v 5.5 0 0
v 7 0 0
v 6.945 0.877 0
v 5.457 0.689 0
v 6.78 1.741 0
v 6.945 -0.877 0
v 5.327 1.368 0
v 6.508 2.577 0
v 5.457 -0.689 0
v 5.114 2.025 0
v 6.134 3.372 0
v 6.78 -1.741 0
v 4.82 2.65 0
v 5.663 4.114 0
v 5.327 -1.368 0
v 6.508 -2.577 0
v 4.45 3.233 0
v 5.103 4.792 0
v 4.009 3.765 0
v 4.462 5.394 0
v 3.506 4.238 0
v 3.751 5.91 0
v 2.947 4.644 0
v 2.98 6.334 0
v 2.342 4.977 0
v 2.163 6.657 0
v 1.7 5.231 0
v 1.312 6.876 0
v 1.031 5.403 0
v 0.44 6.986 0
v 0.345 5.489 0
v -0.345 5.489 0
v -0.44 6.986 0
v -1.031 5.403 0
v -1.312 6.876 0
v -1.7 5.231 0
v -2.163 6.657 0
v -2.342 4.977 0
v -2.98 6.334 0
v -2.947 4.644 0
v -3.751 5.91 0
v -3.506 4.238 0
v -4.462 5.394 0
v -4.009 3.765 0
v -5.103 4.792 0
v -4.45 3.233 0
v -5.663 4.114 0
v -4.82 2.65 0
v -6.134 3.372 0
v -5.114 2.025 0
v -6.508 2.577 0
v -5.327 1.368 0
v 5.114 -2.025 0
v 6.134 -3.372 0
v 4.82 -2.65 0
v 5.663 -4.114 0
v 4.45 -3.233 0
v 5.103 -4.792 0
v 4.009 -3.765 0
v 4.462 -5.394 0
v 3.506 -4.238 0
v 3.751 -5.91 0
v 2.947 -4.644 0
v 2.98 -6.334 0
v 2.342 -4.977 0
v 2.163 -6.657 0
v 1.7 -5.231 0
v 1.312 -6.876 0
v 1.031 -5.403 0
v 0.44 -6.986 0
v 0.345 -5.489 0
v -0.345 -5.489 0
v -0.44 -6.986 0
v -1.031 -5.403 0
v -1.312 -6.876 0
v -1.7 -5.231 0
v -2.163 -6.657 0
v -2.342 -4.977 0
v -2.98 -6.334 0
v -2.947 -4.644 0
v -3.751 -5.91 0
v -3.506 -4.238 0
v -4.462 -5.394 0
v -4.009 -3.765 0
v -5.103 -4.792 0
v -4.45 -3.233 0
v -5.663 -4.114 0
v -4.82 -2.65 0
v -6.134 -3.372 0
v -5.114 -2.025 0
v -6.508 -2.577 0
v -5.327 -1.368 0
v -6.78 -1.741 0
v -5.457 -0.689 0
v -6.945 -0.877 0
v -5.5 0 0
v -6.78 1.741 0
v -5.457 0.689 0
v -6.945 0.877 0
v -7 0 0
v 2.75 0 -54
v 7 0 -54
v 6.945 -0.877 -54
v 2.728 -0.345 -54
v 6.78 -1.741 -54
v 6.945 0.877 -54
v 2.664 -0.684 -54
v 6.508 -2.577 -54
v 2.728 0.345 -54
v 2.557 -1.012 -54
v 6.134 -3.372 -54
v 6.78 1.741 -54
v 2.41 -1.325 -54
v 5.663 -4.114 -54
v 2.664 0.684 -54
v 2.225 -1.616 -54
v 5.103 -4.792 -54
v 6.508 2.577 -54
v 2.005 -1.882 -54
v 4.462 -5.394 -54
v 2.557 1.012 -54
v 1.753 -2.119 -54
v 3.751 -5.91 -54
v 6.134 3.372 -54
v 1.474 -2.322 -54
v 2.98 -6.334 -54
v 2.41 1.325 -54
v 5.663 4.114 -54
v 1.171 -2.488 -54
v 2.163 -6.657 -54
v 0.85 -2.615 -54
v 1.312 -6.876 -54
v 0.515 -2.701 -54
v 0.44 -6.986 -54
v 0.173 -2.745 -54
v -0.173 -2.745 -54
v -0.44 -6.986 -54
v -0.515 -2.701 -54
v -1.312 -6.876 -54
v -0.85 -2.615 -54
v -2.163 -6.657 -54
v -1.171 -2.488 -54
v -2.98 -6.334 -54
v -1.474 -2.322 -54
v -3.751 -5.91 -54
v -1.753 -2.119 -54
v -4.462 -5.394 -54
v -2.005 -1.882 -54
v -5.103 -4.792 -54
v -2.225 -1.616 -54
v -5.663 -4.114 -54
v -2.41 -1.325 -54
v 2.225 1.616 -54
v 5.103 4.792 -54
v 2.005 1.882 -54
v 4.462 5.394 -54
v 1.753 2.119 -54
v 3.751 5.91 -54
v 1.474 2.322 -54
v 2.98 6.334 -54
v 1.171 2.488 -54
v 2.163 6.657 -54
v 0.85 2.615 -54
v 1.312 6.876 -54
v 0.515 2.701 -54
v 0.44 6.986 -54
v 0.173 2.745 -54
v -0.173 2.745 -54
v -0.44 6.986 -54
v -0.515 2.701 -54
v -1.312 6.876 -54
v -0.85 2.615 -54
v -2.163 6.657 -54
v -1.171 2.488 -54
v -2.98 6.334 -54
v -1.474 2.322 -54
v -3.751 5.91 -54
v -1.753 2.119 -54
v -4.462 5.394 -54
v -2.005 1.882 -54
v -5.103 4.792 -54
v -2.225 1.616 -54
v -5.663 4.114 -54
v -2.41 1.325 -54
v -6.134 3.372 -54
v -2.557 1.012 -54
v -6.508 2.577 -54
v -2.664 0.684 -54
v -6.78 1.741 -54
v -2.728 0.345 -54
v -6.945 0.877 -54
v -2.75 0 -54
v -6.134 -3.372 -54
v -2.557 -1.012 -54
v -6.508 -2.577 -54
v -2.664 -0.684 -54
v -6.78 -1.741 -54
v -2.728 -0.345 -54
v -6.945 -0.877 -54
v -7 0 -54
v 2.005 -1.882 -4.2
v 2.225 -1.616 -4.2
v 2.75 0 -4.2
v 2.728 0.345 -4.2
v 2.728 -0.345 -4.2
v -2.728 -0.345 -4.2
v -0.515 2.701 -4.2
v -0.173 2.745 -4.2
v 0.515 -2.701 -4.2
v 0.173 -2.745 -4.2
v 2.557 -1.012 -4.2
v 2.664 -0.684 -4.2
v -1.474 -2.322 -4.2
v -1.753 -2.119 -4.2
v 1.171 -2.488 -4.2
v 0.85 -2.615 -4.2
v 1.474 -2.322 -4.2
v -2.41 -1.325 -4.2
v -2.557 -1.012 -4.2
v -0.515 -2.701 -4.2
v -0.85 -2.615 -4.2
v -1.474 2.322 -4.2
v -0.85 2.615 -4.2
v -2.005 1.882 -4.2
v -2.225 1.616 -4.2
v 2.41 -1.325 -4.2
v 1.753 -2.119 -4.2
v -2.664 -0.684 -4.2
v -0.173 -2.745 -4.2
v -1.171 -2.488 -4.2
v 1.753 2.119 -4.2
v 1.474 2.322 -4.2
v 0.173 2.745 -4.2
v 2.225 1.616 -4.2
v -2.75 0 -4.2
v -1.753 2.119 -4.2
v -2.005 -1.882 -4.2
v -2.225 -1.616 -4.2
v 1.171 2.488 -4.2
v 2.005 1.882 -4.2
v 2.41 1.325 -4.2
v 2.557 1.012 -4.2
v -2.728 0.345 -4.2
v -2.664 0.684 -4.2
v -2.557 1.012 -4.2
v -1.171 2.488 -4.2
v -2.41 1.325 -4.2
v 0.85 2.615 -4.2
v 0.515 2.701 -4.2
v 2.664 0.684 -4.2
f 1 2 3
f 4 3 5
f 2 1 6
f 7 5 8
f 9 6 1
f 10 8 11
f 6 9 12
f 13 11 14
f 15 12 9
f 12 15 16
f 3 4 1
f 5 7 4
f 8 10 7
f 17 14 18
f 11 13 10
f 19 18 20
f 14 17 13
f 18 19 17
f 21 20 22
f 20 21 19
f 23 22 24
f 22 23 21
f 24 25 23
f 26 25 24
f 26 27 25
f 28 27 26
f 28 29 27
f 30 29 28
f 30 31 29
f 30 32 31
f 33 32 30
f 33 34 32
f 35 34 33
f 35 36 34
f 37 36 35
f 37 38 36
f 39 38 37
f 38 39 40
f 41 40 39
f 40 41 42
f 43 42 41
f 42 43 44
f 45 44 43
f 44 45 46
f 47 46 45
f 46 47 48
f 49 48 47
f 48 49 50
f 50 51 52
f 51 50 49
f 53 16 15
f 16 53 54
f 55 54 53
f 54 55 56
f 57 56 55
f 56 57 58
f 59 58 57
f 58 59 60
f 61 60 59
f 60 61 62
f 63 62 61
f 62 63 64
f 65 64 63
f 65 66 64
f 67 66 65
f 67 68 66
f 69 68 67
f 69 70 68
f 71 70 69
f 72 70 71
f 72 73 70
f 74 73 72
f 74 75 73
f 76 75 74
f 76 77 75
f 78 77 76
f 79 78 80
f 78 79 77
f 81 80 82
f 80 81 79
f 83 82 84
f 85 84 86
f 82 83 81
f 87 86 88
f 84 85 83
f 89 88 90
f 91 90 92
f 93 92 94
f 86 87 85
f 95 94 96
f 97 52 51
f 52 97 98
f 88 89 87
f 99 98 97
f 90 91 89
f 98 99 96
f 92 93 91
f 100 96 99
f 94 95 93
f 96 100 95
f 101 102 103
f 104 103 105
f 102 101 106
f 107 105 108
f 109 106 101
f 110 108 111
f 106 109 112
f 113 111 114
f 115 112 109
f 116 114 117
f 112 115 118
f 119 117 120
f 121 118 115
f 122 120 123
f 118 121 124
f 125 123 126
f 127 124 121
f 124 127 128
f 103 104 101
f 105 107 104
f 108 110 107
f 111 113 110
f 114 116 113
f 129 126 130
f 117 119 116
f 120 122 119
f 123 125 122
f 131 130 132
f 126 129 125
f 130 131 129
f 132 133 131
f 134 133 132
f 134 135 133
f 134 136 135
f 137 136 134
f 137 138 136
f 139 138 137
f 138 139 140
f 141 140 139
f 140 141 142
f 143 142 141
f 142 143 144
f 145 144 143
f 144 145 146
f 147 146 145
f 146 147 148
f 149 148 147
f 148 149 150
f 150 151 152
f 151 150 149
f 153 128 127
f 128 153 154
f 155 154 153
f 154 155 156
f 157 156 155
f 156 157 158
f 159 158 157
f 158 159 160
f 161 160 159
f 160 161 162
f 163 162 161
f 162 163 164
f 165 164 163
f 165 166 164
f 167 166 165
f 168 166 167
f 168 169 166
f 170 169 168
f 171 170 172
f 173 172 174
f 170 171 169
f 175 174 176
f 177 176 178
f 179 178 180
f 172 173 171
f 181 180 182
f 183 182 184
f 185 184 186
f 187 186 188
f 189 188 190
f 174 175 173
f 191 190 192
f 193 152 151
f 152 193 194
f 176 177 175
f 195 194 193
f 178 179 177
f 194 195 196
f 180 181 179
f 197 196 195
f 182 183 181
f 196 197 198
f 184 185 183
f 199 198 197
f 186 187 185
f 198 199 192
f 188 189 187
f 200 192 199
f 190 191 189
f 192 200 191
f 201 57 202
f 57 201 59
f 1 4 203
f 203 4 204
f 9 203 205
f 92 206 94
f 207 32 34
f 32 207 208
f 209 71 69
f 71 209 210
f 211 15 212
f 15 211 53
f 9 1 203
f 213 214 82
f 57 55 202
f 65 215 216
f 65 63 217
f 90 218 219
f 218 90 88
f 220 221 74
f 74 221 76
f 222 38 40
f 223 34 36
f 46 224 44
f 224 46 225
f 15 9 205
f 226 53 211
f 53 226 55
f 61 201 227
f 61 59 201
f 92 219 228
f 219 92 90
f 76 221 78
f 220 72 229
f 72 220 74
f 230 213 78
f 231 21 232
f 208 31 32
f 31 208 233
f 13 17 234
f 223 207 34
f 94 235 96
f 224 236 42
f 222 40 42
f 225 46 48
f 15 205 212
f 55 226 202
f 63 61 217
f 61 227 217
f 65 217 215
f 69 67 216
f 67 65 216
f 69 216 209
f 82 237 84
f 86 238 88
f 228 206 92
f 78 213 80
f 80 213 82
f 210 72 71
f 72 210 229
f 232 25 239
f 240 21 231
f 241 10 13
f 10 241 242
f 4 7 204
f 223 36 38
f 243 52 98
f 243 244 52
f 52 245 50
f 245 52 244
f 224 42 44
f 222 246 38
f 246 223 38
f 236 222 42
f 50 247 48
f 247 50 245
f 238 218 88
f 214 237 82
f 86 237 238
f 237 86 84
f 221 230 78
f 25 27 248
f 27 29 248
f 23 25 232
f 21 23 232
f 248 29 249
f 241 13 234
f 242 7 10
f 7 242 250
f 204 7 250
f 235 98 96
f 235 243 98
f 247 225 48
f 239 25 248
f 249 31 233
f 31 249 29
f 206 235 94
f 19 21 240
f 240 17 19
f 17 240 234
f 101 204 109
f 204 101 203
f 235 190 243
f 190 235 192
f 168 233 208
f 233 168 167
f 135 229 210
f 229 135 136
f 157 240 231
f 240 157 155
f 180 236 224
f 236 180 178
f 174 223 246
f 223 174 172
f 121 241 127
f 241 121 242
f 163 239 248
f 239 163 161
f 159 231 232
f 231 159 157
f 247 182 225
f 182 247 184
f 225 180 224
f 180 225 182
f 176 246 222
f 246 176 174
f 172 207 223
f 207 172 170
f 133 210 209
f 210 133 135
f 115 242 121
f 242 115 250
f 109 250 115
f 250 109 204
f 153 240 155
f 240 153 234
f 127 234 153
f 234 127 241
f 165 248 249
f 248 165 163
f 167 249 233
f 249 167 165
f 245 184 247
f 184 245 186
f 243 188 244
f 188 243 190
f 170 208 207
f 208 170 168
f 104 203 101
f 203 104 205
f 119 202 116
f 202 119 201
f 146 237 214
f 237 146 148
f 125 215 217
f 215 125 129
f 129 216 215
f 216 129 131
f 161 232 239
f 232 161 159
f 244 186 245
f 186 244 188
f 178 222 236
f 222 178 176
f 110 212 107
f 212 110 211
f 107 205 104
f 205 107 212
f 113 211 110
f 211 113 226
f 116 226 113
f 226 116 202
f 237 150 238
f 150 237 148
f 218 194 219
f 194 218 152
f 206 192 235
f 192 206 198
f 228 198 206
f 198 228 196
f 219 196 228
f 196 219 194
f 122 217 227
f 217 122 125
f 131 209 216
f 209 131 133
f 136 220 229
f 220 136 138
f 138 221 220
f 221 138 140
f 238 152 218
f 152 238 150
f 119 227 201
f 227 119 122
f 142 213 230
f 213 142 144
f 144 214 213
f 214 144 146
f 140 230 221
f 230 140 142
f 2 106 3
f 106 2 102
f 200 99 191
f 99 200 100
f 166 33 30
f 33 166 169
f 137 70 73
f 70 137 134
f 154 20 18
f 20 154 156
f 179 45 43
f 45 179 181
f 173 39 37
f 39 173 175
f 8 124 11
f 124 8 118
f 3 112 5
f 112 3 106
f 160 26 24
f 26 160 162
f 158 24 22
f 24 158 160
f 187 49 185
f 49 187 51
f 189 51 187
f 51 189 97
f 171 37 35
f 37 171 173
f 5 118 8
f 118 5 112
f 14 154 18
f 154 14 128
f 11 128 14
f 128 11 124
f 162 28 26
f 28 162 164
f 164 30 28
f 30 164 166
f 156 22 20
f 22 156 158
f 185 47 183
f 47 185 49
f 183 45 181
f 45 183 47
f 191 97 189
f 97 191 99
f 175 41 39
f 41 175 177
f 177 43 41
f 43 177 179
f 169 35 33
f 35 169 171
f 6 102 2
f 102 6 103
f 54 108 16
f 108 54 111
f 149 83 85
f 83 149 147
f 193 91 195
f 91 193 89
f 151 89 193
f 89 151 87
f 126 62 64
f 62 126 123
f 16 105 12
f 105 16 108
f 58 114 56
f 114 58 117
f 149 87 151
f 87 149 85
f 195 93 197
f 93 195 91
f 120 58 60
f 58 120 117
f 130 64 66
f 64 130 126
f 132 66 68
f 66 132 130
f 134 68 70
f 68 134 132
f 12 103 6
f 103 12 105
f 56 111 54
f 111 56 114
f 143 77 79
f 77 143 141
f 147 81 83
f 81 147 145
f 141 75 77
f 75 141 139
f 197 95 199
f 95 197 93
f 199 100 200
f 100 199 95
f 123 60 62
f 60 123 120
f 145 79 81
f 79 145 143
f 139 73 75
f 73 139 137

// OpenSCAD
$fn = 50;


difference() {
	union() {
		translate(v = [0, 0, -54.0000000000]) {
			cylinder(h = 54, r = 7.0000000000);
		}
		cylinder(h = 0, r = 10.0000000000);
	}
	union() {
		translate(v = [0, 0, 0]) {
			rotate(a = [0, 0, 0]) {
				difference() {
					union() {
						#translate(v = [0, 0, -54.0000000000]) {
							cylinder(h = 54, r = 2.2500000000);
						}
						#translate(v = [0, 0, -4.2000000000]) {
							cylinder(h = 4.2000000000, r = 7.0000000000, r1 = 2.7500000000, r2 = 5.5000000000);
						}
						#translate(v = [0, 0, -54.0000000000]) {
							cylinder(h = 54, r = 2.7500000000);
						}
						#translate(v = [0, 0, -54.0000000000]) {
							cylinder(h = 54, r = 2.2500000000);
						}
					}
					union();
				}
			}
		}
	}
}
